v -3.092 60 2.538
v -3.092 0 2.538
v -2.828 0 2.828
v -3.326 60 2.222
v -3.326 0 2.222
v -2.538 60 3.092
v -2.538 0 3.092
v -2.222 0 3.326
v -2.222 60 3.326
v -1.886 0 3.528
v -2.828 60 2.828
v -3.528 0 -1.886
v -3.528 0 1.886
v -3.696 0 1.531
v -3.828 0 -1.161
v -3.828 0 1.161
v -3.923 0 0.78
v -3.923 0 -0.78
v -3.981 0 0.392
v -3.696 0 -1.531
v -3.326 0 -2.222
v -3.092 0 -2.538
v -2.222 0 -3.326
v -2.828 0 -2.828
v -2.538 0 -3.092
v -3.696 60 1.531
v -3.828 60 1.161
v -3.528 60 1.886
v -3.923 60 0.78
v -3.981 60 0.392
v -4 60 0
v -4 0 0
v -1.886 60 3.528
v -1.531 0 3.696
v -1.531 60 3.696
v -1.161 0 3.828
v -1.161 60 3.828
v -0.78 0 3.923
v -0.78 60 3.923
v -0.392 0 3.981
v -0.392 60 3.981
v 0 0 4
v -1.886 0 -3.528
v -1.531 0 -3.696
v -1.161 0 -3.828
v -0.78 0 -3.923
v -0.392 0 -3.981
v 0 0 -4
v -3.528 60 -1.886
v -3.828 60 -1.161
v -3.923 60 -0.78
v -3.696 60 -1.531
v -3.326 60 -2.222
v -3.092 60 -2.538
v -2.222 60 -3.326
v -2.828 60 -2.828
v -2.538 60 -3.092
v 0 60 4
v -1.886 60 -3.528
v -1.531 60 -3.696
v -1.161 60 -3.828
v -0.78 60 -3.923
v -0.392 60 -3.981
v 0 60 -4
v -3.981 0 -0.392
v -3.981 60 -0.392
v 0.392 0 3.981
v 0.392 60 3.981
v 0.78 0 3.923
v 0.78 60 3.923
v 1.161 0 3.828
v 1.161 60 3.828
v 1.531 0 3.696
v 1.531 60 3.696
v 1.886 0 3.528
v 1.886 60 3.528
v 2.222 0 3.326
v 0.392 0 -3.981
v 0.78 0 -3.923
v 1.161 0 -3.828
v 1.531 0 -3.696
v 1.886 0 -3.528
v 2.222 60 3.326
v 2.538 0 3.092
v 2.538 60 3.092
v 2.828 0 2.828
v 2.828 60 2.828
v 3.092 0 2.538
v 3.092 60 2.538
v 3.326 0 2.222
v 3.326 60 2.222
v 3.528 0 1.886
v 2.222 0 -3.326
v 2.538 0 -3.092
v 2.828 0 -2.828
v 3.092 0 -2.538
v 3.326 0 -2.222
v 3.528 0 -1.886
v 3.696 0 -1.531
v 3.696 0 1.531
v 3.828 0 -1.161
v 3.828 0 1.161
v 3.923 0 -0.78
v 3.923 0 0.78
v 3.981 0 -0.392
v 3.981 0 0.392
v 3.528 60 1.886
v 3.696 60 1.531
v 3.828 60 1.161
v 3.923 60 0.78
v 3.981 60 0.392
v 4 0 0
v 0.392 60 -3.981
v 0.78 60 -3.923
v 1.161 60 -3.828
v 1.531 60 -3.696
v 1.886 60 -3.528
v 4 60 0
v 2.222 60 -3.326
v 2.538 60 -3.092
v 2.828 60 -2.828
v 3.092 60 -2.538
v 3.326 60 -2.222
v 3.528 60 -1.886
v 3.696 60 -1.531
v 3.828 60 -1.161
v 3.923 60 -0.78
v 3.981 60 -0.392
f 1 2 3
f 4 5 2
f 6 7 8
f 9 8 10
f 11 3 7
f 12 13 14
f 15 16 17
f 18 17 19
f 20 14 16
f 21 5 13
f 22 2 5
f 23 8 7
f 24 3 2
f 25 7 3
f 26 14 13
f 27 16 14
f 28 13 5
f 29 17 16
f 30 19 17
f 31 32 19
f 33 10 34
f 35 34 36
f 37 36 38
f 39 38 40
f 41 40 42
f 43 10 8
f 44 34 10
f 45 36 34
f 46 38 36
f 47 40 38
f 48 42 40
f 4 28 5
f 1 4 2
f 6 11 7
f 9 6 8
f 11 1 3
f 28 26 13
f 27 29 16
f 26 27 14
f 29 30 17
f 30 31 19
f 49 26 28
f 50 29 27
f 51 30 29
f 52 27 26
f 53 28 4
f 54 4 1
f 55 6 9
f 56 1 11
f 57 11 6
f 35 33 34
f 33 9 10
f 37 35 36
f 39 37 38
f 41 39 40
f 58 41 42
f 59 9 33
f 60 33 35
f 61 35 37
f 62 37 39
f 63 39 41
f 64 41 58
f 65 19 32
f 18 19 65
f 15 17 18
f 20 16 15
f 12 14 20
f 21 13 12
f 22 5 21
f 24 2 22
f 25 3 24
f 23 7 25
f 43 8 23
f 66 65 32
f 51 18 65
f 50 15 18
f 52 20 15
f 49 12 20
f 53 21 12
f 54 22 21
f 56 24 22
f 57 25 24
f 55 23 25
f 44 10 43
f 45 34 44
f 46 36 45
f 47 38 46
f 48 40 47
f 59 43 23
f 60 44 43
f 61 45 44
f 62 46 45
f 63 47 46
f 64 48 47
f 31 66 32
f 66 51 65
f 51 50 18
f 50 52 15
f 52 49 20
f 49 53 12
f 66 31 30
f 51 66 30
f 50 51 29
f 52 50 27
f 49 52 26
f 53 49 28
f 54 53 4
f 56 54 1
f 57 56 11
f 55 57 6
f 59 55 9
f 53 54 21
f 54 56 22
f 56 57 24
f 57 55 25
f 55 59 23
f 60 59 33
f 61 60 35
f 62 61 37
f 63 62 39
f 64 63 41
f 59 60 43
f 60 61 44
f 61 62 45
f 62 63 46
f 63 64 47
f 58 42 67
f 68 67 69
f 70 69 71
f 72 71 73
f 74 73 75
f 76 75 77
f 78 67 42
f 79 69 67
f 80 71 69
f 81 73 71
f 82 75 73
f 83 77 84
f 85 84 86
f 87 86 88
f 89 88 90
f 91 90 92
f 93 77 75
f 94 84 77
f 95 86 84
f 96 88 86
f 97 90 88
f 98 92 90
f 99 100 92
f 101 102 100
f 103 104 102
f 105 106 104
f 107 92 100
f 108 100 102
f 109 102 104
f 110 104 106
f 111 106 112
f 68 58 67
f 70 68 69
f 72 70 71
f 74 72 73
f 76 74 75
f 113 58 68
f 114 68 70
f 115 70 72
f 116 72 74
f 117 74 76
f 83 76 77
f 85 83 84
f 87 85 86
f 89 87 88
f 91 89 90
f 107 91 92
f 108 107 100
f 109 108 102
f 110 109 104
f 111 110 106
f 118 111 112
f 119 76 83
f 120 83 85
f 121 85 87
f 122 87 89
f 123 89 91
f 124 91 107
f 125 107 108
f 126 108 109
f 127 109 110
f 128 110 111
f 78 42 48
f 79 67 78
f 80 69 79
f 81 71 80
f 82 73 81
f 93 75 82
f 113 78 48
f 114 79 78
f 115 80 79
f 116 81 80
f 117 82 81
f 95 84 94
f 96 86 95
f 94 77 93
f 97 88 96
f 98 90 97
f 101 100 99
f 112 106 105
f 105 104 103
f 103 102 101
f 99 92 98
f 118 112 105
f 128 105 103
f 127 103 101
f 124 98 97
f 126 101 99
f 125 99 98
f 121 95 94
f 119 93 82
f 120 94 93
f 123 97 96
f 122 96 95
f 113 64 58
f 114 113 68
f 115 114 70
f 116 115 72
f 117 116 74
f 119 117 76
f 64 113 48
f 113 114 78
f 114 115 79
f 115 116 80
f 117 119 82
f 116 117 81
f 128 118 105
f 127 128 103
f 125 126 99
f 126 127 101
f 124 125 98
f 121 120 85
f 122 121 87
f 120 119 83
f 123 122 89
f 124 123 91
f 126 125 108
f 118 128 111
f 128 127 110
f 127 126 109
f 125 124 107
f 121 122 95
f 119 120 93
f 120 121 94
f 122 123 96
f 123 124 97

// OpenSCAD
// Driver bit, 60 mm profile
// Geometry follows the holder clearance profile. Its dimensions describe the pocket used in the source design. Physical tool dimensions and fit have yet to be measured.
// Units: mm
$fn = 64;
union() {
    translate([0, 0, 0]) rotate([-90, 0, 0])
        cylinder(h=60, r1=4, r2=4, $fn=64);
}
